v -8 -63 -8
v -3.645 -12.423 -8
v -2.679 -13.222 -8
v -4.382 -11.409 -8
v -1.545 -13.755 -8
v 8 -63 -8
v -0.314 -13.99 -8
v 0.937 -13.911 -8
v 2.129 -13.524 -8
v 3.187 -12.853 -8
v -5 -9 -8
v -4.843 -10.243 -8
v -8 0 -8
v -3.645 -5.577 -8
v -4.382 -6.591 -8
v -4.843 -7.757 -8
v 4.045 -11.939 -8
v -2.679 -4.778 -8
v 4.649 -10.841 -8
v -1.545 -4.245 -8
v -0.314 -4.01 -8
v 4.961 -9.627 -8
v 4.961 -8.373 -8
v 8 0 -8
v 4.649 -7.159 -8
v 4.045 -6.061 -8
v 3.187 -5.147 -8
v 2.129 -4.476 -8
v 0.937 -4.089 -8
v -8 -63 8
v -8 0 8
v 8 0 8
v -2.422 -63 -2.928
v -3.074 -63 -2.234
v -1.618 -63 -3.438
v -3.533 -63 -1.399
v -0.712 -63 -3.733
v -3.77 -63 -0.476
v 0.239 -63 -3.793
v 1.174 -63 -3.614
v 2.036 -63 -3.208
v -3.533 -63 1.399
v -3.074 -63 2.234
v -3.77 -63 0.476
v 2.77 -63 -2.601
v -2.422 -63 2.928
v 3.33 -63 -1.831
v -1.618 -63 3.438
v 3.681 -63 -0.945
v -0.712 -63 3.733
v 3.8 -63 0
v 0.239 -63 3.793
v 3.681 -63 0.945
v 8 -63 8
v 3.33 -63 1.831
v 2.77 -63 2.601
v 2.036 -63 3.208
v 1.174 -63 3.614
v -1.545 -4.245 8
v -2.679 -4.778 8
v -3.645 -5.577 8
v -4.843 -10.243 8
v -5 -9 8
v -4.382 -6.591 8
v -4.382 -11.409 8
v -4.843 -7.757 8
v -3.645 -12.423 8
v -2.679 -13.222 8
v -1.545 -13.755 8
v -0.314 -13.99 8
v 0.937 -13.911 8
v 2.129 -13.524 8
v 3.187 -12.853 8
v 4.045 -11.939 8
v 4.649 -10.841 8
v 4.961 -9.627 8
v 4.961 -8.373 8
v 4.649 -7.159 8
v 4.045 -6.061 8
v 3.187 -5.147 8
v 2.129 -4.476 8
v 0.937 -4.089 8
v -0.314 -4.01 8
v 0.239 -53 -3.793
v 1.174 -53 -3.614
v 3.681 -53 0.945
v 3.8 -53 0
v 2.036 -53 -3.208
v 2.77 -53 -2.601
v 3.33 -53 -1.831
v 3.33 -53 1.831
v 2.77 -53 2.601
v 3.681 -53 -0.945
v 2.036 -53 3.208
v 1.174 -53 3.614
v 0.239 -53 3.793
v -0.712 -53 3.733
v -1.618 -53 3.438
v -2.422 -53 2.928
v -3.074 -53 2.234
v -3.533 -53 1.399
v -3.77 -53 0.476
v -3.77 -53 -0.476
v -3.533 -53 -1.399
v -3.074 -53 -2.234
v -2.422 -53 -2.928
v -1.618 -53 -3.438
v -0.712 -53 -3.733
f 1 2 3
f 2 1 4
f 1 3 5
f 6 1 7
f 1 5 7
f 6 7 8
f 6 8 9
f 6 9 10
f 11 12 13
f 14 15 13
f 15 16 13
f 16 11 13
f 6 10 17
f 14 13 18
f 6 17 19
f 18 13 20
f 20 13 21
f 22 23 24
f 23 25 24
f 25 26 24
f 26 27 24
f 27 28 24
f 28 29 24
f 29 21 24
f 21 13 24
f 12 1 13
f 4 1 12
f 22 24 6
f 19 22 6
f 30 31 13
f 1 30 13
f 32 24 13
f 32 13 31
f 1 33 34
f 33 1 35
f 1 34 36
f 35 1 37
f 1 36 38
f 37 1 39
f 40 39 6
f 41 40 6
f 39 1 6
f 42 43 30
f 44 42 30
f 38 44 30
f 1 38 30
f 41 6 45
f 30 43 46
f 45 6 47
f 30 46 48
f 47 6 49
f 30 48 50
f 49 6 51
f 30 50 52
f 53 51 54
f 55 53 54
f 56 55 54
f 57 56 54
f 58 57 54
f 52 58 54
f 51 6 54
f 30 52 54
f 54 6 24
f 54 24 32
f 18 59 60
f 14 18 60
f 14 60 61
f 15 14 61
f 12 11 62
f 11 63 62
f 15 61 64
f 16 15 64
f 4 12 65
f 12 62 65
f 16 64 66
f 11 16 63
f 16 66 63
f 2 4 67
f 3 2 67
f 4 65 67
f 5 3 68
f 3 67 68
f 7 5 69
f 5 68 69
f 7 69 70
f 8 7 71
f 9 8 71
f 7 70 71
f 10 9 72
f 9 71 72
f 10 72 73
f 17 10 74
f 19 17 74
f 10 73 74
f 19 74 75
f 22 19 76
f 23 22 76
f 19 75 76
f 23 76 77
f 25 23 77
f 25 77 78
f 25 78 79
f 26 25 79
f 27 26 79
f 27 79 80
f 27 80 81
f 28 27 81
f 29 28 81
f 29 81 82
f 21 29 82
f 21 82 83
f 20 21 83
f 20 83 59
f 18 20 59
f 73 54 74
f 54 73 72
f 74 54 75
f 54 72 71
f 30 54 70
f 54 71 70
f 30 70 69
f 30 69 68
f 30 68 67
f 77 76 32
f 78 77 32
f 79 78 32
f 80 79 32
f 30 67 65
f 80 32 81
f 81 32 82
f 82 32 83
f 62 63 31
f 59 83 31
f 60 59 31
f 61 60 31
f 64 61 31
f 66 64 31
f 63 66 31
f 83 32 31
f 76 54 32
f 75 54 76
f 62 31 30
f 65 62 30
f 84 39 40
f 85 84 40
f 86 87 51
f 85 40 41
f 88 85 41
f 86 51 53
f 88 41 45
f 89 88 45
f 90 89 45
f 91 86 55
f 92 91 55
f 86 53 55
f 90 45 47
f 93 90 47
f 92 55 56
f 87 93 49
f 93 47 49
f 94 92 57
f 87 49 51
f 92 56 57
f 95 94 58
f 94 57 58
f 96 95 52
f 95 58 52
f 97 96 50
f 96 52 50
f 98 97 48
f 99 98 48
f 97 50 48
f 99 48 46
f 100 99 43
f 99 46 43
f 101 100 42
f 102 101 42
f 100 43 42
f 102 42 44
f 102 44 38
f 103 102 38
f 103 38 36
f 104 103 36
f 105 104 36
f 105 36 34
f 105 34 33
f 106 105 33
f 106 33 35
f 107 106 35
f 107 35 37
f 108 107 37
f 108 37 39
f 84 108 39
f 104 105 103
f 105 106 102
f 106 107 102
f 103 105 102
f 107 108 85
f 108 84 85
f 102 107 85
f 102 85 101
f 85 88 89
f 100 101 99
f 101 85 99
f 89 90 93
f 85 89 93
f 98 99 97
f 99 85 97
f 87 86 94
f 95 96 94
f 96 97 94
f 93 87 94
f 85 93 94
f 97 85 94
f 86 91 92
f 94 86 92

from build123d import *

# Parameters (mm, degrees)
SKETCH_W        = 16
SKETCH_H        = 16
PAD_DEPTH       = 63
SKETCH001_R     = 5
POCKET_DEPTH    = 16
SKETCH002_R     = 3.8
POCKET001_DEPTH = 10


with BuildPart() as part:
    # Sketch → Pad (new body)
    with BuildSketch(Plane.XZ):
        Rectangle(SKETCH_W, SKETCH_H)
    extrude(amount=PAD_DEPTH)

    # Sketch001 → Pocket (cut)
    with BuildSketch(Plane(origin=(0, 0, 8), x_dir=(-1, 0, 0), z_dir=(0, 0, 1))):
        with Locations((0, 9)):
            Circle(SKETCH001_R)
    extrude(amount=-POCKET_DEPTH, mode=Mode.SUBTRACT)

    # Sketch002 → Pocket001 (cut)
    with BuildSketch(Plane.XZ.offset(63)):
        Circle(SKETCH002_R)
    extrude(amount=-POCKET001_DEPTH, mode=Mode.SUBTRACT)


solid = part.part
